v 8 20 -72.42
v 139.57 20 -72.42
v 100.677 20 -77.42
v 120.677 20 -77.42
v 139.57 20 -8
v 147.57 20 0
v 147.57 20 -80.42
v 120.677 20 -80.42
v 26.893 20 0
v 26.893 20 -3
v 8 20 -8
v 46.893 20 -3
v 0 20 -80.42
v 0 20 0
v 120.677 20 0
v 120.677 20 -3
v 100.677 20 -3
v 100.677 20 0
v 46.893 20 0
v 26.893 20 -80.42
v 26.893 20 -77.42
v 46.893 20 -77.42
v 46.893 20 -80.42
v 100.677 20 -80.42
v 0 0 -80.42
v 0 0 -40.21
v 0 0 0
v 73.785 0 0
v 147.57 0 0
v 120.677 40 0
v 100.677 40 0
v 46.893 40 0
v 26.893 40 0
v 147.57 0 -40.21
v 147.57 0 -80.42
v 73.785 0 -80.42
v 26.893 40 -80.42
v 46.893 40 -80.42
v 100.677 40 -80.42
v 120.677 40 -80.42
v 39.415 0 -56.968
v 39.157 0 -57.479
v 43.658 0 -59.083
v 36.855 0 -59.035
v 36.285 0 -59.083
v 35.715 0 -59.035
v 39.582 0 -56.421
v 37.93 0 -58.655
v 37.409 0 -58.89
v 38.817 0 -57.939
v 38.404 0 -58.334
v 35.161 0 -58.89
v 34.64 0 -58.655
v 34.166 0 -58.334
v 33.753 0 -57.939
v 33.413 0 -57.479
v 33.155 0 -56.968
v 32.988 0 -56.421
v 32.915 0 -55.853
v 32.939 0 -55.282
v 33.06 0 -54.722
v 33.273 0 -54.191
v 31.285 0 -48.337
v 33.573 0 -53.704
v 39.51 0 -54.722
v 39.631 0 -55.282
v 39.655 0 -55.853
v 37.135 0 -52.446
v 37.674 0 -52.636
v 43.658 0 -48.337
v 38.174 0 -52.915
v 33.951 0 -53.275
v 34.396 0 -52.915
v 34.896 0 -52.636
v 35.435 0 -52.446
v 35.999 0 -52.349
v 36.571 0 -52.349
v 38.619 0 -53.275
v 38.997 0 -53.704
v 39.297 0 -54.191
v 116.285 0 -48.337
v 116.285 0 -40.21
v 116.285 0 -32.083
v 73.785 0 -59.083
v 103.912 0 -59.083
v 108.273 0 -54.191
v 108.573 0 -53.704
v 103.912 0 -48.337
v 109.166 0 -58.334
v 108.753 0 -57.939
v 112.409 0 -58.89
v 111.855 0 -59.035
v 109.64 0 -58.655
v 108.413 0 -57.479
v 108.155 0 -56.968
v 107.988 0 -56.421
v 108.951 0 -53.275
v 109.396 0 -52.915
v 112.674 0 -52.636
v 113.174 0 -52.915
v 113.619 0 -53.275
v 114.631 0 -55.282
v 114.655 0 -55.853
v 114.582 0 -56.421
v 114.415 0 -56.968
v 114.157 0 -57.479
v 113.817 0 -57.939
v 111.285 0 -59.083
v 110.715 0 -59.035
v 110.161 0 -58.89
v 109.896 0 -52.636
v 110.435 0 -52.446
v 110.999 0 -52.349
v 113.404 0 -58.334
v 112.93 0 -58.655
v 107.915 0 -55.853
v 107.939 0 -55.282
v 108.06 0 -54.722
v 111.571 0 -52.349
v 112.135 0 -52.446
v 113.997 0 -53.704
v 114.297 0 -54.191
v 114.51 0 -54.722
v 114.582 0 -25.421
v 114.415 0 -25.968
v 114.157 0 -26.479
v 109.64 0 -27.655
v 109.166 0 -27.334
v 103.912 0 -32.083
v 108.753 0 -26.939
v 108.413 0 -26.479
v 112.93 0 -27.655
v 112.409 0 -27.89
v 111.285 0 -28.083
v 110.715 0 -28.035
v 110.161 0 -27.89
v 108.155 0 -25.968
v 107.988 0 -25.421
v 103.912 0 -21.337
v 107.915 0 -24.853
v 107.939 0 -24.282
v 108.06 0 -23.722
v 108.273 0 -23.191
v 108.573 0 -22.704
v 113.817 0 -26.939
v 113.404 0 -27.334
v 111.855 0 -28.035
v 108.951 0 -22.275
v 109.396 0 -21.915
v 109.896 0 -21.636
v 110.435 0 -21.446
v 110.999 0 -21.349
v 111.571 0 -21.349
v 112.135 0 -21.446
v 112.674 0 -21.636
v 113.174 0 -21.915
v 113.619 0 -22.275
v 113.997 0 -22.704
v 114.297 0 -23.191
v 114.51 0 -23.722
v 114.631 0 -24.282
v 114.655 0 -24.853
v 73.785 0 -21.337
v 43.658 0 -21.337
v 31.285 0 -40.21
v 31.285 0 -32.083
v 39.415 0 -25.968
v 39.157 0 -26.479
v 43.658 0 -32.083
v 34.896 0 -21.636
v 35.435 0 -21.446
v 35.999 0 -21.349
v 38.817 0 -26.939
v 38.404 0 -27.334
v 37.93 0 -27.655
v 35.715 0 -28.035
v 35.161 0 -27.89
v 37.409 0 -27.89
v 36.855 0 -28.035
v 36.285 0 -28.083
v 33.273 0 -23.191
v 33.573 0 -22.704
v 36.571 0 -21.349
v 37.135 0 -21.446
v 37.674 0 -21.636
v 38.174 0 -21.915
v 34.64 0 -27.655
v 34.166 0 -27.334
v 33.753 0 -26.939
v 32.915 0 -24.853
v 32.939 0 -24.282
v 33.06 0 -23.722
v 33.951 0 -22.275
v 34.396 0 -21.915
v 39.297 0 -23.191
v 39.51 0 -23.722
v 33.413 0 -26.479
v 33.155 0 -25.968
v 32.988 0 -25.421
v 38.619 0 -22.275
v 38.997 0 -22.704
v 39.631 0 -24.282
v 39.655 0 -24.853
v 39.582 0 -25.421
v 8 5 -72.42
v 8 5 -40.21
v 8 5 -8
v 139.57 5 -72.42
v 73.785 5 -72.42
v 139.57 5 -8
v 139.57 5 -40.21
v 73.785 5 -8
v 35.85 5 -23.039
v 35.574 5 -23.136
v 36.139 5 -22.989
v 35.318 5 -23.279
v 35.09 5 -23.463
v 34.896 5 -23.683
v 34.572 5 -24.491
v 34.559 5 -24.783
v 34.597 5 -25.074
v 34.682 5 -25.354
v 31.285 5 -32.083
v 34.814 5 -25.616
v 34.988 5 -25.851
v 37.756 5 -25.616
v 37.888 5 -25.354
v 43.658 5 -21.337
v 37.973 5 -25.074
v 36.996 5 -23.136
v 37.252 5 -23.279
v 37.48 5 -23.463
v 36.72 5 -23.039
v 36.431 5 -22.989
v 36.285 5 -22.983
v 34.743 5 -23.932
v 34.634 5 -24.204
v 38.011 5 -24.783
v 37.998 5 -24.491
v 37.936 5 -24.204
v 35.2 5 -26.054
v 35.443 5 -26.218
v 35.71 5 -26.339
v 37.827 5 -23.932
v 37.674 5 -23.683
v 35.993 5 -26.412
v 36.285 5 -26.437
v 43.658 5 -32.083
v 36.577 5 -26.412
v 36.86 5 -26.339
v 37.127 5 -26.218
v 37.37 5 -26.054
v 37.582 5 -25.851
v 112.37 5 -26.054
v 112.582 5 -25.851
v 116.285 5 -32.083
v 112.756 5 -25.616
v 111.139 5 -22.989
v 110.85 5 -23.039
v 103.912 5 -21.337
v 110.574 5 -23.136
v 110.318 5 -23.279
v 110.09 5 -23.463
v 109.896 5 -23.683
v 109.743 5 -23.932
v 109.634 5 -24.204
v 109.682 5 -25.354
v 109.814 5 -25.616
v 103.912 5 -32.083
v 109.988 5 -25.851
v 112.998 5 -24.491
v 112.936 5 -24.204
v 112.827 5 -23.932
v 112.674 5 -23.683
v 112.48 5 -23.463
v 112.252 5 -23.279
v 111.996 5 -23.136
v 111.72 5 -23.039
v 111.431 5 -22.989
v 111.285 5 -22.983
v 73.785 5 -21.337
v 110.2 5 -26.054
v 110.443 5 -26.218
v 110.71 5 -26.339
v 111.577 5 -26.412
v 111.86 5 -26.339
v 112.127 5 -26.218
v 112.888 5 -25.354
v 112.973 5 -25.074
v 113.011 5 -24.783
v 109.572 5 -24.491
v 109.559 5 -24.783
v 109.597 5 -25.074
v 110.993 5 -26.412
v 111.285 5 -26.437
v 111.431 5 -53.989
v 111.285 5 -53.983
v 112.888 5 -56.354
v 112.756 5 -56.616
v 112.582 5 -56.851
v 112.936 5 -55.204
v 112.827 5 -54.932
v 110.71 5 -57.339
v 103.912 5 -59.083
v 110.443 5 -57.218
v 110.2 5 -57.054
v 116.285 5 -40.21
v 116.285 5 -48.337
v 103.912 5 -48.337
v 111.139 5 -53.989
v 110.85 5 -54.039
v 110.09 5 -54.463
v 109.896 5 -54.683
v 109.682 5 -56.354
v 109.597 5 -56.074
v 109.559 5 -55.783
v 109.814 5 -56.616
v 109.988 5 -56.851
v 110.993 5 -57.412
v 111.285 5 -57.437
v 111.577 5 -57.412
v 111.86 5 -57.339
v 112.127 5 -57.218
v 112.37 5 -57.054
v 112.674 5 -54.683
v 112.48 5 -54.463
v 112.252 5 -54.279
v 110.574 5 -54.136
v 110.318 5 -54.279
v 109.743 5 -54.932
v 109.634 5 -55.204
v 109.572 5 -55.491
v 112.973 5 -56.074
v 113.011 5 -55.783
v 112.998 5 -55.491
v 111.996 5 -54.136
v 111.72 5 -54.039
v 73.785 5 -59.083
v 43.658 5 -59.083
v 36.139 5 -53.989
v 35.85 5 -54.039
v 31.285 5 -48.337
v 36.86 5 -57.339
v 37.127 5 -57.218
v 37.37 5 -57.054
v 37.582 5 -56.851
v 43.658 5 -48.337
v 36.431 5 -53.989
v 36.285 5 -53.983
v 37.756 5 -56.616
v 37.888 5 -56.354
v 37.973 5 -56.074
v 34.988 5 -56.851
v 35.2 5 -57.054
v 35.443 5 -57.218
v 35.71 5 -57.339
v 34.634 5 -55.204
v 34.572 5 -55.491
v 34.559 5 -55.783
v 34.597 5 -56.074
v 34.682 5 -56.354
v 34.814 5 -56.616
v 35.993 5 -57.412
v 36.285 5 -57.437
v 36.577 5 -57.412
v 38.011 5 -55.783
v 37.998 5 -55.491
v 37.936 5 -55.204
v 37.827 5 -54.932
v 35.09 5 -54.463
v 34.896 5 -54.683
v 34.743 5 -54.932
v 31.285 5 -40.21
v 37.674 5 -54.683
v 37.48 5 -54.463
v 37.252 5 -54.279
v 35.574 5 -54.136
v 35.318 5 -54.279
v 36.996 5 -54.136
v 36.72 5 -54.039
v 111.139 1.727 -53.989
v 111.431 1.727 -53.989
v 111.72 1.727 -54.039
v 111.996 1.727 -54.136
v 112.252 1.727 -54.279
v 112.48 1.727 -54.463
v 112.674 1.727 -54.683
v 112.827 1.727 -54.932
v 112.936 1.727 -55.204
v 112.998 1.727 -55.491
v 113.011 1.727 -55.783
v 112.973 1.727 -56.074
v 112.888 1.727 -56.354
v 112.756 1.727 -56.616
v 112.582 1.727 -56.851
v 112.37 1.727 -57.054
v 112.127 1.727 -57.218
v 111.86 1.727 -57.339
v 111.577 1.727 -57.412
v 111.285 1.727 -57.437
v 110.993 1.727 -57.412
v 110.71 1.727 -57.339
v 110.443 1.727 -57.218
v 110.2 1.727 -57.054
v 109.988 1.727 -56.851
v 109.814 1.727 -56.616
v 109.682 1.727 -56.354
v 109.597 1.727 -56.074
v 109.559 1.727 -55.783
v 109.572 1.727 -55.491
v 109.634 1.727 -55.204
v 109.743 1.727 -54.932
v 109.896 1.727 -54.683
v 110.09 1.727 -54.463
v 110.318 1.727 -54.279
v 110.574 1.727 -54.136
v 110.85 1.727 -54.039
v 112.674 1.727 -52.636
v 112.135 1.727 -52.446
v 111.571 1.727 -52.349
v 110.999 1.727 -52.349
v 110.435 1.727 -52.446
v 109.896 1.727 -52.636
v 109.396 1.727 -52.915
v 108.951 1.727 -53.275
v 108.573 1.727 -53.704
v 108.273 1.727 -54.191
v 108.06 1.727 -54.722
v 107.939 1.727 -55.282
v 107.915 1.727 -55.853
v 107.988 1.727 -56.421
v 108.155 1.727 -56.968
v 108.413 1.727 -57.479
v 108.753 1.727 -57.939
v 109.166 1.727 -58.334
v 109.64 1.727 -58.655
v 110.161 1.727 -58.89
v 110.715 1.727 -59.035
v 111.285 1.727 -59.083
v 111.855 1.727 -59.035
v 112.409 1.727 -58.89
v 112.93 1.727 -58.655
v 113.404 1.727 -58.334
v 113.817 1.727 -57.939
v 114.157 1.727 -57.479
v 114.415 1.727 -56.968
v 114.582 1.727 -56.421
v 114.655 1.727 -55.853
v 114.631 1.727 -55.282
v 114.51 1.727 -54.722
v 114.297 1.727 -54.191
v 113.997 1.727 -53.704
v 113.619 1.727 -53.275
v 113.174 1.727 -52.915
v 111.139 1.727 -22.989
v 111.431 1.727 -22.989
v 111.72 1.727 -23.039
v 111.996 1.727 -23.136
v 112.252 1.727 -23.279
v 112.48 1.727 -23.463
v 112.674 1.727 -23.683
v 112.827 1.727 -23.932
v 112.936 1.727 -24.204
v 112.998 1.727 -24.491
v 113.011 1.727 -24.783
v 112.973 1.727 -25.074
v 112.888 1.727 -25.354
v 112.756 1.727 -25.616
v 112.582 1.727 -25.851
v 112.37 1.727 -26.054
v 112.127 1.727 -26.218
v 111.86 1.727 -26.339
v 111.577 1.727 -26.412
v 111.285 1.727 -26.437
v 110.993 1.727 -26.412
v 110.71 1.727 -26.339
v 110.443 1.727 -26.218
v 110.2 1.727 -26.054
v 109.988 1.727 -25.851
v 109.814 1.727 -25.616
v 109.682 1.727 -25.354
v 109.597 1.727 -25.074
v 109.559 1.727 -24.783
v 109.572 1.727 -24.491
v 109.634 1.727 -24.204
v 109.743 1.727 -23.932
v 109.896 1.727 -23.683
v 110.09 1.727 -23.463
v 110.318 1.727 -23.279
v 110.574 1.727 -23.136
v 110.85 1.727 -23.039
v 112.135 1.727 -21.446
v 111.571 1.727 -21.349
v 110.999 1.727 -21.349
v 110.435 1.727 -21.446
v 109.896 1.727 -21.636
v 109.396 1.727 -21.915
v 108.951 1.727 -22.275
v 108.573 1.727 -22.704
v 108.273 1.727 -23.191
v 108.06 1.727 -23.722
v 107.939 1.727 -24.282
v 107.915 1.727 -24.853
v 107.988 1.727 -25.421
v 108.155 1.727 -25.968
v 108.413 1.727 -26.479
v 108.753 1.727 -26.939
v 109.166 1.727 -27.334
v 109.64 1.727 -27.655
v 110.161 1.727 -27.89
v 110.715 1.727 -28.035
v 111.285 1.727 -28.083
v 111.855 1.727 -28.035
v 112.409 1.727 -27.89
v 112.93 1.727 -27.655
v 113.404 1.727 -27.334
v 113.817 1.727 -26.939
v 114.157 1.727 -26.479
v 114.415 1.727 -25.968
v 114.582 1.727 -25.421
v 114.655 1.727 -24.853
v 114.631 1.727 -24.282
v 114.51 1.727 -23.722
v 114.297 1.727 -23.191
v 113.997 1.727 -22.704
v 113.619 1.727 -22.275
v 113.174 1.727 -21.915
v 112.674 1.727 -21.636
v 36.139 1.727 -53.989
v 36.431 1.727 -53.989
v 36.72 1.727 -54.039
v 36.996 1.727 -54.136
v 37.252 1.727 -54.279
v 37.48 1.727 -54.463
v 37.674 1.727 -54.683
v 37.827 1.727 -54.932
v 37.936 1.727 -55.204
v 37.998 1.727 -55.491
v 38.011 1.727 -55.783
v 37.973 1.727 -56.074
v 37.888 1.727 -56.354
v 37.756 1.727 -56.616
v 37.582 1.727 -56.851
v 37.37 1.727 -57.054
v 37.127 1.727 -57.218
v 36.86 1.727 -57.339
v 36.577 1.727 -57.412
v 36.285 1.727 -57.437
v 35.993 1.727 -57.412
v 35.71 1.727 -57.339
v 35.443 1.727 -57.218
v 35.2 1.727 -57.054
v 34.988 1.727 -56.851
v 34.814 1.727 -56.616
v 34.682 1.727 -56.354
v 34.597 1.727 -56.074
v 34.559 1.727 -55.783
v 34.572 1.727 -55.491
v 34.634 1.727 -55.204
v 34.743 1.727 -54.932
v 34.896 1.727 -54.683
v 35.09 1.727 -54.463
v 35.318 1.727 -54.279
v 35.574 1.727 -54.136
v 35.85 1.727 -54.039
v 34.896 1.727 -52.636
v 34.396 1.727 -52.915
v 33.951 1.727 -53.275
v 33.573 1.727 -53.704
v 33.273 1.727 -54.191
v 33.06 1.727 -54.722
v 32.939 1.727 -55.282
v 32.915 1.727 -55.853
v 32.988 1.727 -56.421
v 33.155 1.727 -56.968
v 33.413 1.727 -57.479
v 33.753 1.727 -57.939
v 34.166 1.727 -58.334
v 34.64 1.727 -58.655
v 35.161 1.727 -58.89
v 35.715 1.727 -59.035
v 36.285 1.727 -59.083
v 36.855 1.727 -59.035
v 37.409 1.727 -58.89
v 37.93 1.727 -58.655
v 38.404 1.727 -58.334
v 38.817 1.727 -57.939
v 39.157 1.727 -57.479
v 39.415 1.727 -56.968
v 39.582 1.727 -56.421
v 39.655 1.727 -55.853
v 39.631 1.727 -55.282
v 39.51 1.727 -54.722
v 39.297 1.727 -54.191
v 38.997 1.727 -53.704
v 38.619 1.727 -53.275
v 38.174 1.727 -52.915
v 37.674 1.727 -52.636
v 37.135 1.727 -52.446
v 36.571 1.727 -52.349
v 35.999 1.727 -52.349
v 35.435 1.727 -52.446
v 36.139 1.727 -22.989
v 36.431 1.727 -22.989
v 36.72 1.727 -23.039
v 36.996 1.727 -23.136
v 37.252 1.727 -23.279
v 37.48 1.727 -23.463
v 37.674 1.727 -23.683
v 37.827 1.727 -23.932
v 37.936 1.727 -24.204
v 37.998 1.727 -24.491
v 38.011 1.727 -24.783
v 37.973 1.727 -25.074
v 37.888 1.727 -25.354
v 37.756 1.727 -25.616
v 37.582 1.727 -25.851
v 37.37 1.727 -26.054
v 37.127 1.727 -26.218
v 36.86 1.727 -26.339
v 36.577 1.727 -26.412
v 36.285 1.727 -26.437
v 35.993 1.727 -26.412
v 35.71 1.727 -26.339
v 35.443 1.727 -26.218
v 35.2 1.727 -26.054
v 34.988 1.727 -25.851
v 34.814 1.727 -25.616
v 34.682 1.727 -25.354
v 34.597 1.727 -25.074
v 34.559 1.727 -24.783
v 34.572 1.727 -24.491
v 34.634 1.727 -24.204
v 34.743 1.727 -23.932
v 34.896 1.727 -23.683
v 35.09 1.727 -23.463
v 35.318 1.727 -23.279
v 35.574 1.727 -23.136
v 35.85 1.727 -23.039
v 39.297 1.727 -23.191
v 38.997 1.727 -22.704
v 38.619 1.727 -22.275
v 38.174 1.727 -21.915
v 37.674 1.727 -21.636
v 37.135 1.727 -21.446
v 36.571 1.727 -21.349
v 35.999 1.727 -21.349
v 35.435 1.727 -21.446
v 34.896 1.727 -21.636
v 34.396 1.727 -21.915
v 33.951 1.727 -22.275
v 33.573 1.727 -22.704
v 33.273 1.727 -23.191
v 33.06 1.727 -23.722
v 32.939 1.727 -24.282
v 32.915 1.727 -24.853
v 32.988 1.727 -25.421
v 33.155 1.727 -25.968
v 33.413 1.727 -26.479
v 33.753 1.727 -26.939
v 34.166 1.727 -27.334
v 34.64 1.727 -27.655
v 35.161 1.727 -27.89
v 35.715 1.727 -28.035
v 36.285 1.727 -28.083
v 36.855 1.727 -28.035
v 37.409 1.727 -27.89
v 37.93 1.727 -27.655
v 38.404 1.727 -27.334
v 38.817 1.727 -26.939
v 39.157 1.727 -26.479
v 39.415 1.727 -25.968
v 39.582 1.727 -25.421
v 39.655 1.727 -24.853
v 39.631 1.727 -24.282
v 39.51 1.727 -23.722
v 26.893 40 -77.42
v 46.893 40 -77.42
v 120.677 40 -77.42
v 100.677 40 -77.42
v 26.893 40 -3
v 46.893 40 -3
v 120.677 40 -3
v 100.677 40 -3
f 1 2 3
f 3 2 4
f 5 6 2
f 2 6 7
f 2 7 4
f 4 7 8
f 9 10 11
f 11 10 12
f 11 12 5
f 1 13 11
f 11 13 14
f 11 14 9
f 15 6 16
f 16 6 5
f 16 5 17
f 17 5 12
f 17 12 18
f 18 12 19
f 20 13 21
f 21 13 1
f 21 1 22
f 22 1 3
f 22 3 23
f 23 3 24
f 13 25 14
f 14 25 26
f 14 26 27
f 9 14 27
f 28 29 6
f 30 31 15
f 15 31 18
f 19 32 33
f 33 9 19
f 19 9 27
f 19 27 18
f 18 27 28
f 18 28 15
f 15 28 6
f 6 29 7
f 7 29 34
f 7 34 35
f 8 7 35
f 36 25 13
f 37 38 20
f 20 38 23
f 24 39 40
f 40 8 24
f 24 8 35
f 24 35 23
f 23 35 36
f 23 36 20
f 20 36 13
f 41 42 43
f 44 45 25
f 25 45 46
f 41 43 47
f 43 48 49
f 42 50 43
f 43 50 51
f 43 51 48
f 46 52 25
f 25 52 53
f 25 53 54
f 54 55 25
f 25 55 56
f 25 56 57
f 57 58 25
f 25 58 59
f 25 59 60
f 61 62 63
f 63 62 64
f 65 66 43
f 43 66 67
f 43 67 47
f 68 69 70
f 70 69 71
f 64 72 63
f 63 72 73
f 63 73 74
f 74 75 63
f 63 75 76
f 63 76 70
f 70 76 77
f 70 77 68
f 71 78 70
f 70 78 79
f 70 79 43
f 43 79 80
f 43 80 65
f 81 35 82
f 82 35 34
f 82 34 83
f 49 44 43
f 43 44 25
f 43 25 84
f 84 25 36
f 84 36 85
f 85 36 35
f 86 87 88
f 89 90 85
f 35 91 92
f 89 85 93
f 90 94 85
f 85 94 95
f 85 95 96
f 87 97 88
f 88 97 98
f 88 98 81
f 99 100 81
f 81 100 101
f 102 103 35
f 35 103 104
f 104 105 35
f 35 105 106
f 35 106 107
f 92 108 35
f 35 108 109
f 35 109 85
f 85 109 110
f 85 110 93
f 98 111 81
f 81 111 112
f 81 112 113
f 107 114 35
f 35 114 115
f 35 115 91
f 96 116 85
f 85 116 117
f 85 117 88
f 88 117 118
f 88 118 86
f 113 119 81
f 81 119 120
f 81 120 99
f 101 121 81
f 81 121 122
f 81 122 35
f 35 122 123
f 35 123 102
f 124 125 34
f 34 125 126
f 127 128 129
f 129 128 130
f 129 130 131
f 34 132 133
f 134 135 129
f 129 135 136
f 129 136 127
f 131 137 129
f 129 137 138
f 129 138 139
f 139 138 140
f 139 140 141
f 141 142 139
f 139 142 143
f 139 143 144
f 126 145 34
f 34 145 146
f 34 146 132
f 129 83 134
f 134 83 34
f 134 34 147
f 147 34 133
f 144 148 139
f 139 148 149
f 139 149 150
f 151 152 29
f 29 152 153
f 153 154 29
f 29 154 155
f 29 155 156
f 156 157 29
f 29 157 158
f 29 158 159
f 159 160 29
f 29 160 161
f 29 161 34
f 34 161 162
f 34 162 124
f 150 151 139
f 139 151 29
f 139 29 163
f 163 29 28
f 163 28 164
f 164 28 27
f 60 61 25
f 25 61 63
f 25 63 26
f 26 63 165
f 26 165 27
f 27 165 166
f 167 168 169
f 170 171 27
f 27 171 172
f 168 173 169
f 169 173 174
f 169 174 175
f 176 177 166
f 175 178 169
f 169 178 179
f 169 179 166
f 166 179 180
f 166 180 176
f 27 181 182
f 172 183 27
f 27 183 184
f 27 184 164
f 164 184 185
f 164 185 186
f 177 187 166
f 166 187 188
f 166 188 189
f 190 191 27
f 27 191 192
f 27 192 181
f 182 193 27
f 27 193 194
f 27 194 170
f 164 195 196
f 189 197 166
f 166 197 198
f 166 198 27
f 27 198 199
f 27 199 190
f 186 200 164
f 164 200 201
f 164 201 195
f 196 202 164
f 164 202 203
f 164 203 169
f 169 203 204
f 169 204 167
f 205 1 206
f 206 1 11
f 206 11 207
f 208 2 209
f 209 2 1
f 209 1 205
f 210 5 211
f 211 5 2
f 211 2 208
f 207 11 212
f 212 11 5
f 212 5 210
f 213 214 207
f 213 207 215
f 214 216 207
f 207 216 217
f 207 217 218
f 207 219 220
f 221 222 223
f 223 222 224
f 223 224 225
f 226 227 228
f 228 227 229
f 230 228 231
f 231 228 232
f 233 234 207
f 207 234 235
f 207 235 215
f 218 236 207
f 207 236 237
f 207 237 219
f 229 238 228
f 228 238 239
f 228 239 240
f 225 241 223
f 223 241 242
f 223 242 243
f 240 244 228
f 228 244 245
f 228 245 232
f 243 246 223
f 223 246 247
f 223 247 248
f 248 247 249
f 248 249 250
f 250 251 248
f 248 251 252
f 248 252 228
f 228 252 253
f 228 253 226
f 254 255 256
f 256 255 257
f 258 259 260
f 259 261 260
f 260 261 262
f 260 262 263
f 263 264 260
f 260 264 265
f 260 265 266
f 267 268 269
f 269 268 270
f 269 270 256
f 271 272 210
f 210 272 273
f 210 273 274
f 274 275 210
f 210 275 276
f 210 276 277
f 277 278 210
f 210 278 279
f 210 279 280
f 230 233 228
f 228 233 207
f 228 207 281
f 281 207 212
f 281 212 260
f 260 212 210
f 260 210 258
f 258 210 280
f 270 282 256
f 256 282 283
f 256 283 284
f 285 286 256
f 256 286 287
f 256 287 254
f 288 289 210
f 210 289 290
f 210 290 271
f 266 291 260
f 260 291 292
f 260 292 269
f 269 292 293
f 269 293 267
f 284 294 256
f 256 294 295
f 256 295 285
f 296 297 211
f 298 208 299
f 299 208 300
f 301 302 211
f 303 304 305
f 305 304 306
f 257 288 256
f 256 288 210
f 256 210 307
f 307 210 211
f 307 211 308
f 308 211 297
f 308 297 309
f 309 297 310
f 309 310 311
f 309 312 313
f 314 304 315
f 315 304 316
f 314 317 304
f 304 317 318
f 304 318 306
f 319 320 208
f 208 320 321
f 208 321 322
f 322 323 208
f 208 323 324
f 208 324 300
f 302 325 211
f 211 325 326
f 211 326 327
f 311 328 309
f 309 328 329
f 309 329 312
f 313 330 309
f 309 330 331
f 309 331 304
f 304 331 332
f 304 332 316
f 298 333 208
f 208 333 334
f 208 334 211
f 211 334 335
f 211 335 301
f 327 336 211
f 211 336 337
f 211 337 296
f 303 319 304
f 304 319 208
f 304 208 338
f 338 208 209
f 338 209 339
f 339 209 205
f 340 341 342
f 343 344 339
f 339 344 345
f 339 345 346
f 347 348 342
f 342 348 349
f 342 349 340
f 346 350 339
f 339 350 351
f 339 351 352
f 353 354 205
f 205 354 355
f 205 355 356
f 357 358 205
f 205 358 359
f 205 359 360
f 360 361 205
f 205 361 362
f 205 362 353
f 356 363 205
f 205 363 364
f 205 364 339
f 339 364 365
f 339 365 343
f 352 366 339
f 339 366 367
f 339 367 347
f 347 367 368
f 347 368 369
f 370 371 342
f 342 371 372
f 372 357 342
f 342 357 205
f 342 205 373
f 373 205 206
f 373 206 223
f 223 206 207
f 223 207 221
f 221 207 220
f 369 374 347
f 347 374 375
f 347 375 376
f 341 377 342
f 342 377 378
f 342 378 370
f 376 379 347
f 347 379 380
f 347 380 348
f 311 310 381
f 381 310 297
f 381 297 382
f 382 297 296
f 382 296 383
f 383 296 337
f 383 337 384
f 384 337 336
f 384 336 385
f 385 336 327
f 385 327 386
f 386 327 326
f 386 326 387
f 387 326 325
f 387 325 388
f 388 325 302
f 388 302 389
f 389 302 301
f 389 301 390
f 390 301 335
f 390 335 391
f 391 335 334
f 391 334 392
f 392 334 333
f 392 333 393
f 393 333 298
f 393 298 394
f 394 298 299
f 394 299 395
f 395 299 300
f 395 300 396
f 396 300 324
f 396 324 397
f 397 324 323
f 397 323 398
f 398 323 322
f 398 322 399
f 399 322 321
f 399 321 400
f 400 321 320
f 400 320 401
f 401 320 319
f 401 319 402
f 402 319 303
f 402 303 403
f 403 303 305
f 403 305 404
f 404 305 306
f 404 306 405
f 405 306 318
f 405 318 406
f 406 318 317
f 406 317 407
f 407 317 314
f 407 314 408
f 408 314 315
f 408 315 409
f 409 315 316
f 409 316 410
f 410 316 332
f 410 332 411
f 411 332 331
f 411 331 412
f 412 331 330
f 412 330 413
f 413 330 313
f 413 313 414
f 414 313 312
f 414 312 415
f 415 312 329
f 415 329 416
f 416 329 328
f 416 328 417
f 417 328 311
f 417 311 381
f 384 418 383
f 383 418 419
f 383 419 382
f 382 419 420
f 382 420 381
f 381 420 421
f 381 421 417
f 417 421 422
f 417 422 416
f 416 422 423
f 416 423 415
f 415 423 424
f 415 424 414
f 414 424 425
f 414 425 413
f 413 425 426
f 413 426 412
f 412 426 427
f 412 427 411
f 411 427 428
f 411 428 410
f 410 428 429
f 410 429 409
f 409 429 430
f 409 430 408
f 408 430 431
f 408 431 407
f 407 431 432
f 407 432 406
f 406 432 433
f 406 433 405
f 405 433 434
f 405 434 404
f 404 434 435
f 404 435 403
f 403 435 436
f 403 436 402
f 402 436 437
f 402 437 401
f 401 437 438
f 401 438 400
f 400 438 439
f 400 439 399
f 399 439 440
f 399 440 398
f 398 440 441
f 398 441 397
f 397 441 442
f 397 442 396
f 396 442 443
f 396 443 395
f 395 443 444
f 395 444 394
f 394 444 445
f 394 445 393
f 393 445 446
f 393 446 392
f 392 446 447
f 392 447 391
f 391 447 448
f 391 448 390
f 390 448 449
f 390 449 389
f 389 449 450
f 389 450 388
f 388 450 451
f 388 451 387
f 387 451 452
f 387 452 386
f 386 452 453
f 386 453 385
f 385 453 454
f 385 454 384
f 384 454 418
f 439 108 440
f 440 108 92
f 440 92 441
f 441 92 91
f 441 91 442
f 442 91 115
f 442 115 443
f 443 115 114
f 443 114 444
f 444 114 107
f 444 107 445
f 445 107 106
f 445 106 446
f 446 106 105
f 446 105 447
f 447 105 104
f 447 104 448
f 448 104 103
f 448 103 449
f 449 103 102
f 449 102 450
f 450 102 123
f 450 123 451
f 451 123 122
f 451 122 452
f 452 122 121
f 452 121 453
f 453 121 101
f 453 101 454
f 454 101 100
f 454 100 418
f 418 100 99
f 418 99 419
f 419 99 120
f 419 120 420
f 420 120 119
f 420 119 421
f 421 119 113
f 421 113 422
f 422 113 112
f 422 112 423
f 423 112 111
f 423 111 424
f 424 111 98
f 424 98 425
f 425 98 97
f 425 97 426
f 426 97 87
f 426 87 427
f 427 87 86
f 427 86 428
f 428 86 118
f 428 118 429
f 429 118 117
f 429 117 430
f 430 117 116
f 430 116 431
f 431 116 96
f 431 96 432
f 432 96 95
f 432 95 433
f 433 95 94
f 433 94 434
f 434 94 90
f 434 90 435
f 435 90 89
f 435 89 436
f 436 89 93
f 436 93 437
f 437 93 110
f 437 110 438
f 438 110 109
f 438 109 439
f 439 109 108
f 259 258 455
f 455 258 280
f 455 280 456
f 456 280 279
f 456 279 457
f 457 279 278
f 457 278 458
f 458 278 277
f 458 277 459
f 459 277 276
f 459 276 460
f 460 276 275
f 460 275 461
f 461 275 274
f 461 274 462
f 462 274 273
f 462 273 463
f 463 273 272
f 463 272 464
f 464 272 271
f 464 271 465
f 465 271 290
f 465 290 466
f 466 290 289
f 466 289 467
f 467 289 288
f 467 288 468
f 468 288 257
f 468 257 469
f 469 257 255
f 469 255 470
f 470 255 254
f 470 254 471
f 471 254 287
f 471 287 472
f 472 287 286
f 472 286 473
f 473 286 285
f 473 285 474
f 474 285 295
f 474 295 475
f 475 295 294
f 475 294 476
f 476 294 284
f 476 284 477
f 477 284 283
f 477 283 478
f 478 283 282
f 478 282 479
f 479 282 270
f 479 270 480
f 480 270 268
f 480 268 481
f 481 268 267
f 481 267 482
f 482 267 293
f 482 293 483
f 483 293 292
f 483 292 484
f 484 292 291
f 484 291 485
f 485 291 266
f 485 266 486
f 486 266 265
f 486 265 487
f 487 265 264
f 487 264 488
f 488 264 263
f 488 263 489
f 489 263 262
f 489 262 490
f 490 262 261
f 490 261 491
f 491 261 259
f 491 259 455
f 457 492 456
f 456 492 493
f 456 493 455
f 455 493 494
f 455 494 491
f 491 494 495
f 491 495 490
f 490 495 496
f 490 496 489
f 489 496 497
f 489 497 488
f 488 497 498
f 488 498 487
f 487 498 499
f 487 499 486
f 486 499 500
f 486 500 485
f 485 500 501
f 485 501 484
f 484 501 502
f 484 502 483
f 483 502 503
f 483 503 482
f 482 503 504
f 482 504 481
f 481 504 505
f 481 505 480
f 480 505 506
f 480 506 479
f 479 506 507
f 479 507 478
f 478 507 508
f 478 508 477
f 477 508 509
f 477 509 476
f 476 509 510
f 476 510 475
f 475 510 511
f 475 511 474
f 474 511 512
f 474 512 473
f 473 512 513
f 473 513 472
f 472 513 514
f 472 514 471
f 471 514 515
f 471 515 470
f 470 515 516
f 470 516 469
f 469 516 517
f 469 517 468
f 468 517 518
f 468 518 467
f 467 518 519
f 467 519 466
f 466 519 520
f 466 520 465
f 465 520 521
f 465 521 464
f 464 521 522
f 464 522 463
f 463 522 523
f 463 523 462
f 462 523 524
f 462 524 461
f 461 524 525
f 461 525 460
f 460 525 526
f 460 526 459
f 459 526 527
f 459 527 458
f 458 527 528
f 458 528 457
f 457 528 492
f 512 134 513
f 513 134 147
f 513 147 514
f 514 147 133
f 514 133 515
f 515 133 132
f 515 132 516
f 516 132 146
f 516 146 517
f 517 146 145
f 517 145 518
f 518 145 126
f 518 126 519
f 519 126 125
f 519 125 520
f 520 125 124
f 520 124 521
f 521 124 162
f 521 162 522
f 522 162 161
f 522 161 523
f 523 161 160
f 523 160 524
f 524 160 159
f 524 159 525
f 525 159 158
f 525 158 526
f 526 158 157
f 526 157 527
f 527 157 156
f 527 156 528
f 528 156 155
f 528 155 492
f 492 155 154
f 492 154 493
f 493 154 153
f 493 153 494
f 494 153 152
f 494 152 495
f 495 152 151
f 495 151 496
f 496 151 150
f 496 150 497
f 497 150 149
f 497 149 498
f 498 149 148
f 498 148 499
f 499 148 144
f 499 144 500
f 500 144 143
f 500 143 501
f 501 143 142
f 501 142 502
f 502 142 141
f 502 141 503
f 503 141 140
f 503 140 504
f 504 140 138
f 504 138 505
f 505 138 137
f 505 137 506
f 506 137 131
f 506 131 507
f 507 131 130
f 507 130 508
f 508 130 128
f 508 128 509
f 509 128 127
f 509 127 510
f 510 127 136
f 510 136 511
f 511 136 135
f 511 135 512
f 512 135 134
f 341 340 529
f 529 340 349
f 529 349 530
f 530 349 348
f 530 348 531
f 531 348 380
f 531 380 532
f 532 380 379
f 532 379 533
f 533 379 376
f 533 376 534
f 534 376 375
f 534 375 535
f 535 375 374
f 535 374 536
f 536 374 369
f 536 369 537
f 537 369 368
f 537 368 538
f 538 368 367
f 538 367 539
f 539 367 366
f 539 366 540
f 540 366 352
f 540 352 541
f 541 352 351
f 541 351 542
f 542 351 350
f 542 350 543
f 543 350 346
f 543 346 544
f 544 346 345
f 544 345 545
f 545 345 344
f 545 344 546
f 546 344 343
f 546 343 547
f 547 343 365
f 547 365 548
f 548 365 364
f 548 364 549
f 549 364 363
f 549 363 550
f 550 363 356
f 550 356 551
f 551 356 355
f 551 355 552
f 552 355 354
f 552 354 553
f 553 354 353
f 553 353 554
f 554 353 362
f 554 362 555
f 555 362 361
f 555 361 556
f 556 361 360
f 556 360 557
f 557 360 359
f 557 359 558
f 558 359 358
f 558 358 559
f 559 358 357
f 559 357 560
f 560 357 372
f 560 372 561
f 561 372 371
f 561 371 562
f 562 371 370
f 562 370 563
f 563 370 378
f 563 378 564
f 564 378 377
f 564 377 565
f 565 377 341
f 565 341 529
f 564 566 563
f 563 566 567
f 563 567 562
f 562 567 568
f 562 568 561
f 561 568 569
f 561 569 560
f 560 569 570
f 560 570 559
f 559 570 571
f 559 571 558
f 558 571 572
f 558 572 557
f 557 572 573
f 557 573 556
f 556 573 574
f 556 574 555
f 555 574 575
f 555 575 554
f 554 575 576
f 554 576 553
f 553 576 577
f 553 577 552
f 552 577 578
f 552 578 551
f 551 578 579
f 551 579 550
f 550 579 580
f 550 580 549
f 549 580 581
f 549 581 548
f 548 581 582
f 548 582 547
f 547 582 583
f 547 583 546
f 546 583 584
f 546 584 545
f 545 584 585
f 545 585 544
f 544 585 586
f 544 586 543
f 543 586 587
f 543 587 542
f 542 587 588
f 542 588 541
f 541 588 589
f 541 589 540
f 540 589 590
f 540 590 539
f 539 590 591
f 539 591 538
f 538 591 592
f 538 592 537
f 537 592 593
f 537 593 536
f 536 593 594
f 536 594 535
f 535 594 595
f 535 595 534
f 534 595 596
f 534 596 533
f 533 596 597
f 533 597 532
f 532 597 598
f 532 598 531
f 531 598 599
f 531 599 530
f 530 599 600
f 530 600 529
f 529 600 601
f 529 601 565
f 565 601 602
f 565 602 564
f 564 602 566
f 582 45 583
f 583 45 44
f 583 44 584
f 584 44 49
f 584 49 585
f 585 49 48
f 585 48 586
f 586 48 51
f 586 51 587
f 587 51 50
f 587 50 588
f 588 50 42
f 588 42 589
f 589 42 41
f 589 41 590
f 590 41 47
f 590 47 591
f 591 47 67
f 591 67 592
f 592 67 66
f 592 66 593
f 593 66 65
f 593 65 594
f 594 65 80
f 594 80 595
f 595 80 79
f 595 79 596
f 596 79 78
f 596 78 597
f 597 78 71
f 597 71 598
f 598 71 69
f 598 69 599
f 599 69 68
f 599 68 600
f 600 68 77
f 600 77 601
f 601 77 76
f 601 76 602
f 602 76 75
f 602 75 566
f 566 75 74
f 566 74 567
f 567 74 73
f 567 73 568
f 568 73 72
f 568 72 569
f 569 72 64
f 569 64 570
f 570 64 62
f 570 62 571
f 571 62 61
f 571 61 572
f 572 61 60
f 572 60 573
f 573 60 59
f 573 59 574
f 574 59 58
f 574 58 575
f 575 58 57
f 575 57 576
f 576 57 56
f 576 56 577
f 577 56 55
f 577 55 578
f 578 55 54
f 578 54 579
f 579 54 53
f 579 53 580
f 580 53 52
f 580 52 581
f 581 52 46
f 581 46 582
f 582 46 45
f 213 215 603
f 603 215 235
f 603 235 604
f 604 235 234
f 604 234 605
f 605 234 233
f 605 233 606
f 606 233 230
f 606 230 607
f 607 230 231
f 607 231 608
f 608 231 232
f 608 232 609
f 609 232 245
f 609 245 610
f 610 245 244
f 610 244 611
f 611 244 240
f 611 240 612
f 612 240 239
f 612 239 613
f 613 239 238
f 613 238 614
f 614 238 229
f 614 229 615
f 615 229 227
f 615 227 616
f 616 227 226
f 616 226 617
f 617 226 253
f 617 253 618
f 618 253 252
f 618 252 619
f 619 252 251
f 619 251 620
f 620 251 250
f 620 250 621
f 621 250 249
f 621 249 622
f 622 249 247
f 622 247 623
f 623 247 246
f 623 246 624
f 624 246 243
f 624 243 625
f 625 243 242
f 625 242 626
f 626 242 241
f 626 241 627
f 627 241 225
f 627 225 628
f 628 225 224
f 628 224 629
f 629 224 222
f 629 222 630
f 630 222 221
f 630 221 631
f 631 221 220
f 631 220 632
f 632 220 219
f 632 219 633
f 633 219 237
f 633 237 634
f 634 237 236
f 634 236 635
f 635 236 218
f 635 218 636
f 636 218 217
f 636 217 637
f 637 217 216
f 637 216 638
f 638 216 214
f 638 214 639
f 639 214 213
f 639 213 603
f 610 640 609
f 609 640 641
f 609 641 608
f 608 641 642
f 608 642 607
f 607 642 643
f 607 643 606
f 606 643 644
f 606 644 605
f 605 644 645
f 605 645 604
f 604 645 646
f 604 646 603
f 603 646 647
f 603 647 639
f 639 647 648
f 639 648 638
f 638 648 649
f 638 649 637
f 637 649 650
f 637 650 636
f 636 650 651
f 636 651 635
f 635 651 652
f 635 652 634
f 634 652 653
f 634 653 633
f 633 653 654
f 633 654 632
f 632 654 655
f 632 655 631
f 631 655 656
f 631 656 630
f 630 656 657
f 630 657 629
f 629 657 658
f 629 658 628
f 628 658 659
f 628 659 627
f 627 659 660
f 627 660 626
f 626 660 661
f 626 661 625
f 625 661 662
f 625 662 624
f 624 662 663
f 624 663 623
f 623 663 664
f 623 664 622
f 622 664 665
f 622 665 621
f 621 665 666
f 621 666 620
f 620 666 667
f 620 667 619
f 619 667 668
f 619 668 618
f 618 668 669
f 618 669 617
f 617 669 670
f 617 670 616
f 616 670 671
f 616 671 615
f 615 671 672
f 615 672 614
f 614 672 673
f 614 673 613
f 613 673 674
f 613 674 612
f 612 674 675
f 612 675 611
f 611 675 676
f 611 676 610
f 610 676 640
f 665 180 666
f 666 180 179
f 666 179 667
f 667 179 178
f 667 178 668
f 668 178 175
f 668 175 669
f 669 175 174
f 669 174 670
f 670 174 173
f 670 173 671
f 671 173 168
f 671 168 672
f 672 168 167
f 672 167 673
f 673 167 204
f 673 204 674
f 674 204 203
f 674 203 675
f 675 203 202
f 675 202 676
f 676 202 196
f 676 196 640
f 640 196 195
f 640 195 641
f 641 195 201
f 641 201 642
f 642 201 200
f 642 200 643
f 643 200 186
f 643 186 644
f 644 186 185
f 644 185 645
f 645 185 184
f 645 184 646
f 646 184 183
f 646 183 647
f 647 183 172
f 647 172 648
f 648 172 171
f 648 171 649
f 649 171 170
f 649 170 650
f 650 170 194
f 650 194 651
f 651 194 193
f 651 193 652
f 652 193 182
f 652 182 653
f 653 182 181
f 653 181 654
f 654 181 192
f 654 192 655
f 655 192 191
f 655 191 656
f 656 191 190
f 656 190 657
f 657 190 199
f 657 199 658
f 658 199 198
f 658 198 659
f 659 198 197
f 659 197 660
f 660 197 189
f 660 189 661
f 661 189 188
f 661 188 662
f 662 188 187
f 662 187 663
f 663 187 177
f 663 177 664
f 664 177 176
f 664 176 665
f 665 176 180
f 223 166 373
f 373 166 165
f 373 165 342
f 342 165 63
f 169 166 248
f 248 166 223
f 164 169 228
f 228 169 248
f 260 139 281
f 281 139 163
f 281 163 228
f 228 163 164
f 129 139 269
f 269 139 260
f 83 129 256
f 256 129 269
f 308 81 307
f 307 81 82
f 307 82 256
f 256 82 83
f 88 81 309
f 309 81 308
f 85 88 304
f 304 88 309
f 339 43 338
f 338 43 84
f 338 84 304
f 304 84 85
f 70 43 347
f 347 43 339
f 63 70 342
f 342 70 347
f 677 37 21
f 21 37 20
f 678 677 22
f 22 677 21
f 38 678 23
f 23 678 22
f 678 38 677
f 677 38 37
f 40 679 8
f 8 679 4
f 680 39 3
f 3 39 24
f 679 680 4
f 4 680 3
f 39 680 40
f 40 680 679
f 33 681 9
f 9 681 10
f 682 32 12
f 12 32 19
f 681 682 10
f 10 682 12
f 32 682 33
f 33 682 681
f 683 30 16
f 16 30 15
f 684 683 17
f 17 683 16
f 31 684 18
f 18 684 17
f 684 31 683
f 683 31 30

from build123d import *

# Parameters (mm, degrees)
SKETCH1_W                                           = 147.57
SKETCH1_H                                           = 80.42
BOSS_EXTRUDE1_DEPTH                                 = 20
SKETCH2_W                                           = 131.57
SKETCH2_H                                           = 64.42
CUT_EXTRUDE1_DEPTH                                  = 15
CBORE_FOR_4_BINDING_HEAD_MACHINE_SCREW1_D           = 3.4544
CBORE_FOR_4_BINDING_HEAD_MACHINE_SCREW1_CBORE_D     = 6.74624
CBORE_FOR_4_BINDING_HEAD_MACHINE_SCREW1_CBORE_DEPTH = 1.7272
CUT_EXTRUDE2_DEPTH                                  = 170.246215024
SKETCH6_W                                           = 20
SKETCH6_H                                           = 3
BOSS_EXTRUDE2_DEPTH                                 = 20
MIRROR2_COPY_1_SKETCH_W                             = 20
MIRROR2_COPY_1_SKETCH_H                             = 3
MIRROR2_COPY_1_DEPTH                                = 20


with BuildPart() as part:
    # Sketch1 → Boss-Extrude1 (new body)
    with BuildSketch(Plane(origin=(0, 0, 0), x_dir=(1, 0, 0), z_dir=(0, 1, 0))):
        with Locations((73.785, 40.21)):
            Rectangle(SKETCH1_W, SKETCH1_H)
    extrude(amount=BOSS_EXTRUDE1_DEPTH)

    # Sketch2 → Cut-Extrude1 (cut)
    with BuildSketch(Plane(origin=(0, 20, 0), x_dir=(1, 0, 0), z_dir=(0, 1, 0))):
        with Locations((73.785, 40.21)):
            Rectangle(SKETCH2_W, SKETCH2_H)
    extrude(amount=-CUT_EXTRUDE1_DEPTH, mode=Mode.SUBTRACT)

    # CBORE for #4 Binding Head Machine Screw1 (through all)
    with Locations(Plane(origin=(36.285, 0, -24.71), x_dir=(0, 0, -1), z_dir=(0, -1, 0))):
        with Locations((0, 0), (31, 0), (0, 75), (31, 75)):
            CounterBoreHole(CBORE_FOR_4_BINDING_HEAD_MACHINE_SCREW1_D / 2, CBORE_FOR_4_BINDING_HEAD_MACHINE_SCREW1_CBORE_D / 2, CBORE_FOR_4_BINDING_HEAD_MACHINE_SCREW1_CBORE_DEPTH)

    # Sketch5 → Cut-Extrude2 (cut, through all)
    with BuildSketch(Plane.XZ):
        Polygon((103.91188, -32.08312), (103.91188, -21.33688), (43.65812, -21.33688), (43.65812, -32.08312), (31.285, -32.08312), (31.285, -48.33688), (43.65812, -48.33688), (43.65812, -59.08312), (103.91188, -59.08312), (103.91188, -48.33688), (116.285, -48.33688), (116.285, -32.08312), align=None)
    extrude(amount=-CUT_EXTRUDE2_DEPTH, mode=Mode.SUBTRACT)

    # Sketch6 → Boss-Extrude2 (add)
    with BuildSketch(Plane(origin=(0, 20, 0), x_dir=(1, 0, 0), z_dir=(0, 1, 0))):
        with Locations((36.8925, 78.92)):
            Rectangle(SKETCH6_W, SKETCH6_H)
    boss_extrude2 = extrude(amount=BOSS_EXTRUDE2_DEPTH)

    # Mirror1: Boss-Extrude2 across plane
    add(boss_extrude2.mirror(Plane(origin=(73.785, 0, 0), x_dir=(0, 0, 1), z_dir=(1, 0, 0))))

    # Mirror2: Boss-Extrude2 across plane
    add(boss_extrude2.mirror(Plane(origin=(0, 0, -40.21), x_dir=(1, 0, 0), z_dir=(0, 0, -1))))

    # Mirror2 copy 1 sketch → Mirror2 copy 1 (add)
    with BuildSketch(Plane(origin=(147.57, 20, -80.42), x_dir=(-1, 0, 0), z_dir=(0, 1, 0))):
        with Locations((36.8925, 78.92)):
            Rectangle(MIRROR2_COPY_1_SKETCH_W, MIRROR2_COPY_1_SKETCH_H)
    extrude(amount=MIRROR2_COPY_1_DEPTH)


solid = part.part
